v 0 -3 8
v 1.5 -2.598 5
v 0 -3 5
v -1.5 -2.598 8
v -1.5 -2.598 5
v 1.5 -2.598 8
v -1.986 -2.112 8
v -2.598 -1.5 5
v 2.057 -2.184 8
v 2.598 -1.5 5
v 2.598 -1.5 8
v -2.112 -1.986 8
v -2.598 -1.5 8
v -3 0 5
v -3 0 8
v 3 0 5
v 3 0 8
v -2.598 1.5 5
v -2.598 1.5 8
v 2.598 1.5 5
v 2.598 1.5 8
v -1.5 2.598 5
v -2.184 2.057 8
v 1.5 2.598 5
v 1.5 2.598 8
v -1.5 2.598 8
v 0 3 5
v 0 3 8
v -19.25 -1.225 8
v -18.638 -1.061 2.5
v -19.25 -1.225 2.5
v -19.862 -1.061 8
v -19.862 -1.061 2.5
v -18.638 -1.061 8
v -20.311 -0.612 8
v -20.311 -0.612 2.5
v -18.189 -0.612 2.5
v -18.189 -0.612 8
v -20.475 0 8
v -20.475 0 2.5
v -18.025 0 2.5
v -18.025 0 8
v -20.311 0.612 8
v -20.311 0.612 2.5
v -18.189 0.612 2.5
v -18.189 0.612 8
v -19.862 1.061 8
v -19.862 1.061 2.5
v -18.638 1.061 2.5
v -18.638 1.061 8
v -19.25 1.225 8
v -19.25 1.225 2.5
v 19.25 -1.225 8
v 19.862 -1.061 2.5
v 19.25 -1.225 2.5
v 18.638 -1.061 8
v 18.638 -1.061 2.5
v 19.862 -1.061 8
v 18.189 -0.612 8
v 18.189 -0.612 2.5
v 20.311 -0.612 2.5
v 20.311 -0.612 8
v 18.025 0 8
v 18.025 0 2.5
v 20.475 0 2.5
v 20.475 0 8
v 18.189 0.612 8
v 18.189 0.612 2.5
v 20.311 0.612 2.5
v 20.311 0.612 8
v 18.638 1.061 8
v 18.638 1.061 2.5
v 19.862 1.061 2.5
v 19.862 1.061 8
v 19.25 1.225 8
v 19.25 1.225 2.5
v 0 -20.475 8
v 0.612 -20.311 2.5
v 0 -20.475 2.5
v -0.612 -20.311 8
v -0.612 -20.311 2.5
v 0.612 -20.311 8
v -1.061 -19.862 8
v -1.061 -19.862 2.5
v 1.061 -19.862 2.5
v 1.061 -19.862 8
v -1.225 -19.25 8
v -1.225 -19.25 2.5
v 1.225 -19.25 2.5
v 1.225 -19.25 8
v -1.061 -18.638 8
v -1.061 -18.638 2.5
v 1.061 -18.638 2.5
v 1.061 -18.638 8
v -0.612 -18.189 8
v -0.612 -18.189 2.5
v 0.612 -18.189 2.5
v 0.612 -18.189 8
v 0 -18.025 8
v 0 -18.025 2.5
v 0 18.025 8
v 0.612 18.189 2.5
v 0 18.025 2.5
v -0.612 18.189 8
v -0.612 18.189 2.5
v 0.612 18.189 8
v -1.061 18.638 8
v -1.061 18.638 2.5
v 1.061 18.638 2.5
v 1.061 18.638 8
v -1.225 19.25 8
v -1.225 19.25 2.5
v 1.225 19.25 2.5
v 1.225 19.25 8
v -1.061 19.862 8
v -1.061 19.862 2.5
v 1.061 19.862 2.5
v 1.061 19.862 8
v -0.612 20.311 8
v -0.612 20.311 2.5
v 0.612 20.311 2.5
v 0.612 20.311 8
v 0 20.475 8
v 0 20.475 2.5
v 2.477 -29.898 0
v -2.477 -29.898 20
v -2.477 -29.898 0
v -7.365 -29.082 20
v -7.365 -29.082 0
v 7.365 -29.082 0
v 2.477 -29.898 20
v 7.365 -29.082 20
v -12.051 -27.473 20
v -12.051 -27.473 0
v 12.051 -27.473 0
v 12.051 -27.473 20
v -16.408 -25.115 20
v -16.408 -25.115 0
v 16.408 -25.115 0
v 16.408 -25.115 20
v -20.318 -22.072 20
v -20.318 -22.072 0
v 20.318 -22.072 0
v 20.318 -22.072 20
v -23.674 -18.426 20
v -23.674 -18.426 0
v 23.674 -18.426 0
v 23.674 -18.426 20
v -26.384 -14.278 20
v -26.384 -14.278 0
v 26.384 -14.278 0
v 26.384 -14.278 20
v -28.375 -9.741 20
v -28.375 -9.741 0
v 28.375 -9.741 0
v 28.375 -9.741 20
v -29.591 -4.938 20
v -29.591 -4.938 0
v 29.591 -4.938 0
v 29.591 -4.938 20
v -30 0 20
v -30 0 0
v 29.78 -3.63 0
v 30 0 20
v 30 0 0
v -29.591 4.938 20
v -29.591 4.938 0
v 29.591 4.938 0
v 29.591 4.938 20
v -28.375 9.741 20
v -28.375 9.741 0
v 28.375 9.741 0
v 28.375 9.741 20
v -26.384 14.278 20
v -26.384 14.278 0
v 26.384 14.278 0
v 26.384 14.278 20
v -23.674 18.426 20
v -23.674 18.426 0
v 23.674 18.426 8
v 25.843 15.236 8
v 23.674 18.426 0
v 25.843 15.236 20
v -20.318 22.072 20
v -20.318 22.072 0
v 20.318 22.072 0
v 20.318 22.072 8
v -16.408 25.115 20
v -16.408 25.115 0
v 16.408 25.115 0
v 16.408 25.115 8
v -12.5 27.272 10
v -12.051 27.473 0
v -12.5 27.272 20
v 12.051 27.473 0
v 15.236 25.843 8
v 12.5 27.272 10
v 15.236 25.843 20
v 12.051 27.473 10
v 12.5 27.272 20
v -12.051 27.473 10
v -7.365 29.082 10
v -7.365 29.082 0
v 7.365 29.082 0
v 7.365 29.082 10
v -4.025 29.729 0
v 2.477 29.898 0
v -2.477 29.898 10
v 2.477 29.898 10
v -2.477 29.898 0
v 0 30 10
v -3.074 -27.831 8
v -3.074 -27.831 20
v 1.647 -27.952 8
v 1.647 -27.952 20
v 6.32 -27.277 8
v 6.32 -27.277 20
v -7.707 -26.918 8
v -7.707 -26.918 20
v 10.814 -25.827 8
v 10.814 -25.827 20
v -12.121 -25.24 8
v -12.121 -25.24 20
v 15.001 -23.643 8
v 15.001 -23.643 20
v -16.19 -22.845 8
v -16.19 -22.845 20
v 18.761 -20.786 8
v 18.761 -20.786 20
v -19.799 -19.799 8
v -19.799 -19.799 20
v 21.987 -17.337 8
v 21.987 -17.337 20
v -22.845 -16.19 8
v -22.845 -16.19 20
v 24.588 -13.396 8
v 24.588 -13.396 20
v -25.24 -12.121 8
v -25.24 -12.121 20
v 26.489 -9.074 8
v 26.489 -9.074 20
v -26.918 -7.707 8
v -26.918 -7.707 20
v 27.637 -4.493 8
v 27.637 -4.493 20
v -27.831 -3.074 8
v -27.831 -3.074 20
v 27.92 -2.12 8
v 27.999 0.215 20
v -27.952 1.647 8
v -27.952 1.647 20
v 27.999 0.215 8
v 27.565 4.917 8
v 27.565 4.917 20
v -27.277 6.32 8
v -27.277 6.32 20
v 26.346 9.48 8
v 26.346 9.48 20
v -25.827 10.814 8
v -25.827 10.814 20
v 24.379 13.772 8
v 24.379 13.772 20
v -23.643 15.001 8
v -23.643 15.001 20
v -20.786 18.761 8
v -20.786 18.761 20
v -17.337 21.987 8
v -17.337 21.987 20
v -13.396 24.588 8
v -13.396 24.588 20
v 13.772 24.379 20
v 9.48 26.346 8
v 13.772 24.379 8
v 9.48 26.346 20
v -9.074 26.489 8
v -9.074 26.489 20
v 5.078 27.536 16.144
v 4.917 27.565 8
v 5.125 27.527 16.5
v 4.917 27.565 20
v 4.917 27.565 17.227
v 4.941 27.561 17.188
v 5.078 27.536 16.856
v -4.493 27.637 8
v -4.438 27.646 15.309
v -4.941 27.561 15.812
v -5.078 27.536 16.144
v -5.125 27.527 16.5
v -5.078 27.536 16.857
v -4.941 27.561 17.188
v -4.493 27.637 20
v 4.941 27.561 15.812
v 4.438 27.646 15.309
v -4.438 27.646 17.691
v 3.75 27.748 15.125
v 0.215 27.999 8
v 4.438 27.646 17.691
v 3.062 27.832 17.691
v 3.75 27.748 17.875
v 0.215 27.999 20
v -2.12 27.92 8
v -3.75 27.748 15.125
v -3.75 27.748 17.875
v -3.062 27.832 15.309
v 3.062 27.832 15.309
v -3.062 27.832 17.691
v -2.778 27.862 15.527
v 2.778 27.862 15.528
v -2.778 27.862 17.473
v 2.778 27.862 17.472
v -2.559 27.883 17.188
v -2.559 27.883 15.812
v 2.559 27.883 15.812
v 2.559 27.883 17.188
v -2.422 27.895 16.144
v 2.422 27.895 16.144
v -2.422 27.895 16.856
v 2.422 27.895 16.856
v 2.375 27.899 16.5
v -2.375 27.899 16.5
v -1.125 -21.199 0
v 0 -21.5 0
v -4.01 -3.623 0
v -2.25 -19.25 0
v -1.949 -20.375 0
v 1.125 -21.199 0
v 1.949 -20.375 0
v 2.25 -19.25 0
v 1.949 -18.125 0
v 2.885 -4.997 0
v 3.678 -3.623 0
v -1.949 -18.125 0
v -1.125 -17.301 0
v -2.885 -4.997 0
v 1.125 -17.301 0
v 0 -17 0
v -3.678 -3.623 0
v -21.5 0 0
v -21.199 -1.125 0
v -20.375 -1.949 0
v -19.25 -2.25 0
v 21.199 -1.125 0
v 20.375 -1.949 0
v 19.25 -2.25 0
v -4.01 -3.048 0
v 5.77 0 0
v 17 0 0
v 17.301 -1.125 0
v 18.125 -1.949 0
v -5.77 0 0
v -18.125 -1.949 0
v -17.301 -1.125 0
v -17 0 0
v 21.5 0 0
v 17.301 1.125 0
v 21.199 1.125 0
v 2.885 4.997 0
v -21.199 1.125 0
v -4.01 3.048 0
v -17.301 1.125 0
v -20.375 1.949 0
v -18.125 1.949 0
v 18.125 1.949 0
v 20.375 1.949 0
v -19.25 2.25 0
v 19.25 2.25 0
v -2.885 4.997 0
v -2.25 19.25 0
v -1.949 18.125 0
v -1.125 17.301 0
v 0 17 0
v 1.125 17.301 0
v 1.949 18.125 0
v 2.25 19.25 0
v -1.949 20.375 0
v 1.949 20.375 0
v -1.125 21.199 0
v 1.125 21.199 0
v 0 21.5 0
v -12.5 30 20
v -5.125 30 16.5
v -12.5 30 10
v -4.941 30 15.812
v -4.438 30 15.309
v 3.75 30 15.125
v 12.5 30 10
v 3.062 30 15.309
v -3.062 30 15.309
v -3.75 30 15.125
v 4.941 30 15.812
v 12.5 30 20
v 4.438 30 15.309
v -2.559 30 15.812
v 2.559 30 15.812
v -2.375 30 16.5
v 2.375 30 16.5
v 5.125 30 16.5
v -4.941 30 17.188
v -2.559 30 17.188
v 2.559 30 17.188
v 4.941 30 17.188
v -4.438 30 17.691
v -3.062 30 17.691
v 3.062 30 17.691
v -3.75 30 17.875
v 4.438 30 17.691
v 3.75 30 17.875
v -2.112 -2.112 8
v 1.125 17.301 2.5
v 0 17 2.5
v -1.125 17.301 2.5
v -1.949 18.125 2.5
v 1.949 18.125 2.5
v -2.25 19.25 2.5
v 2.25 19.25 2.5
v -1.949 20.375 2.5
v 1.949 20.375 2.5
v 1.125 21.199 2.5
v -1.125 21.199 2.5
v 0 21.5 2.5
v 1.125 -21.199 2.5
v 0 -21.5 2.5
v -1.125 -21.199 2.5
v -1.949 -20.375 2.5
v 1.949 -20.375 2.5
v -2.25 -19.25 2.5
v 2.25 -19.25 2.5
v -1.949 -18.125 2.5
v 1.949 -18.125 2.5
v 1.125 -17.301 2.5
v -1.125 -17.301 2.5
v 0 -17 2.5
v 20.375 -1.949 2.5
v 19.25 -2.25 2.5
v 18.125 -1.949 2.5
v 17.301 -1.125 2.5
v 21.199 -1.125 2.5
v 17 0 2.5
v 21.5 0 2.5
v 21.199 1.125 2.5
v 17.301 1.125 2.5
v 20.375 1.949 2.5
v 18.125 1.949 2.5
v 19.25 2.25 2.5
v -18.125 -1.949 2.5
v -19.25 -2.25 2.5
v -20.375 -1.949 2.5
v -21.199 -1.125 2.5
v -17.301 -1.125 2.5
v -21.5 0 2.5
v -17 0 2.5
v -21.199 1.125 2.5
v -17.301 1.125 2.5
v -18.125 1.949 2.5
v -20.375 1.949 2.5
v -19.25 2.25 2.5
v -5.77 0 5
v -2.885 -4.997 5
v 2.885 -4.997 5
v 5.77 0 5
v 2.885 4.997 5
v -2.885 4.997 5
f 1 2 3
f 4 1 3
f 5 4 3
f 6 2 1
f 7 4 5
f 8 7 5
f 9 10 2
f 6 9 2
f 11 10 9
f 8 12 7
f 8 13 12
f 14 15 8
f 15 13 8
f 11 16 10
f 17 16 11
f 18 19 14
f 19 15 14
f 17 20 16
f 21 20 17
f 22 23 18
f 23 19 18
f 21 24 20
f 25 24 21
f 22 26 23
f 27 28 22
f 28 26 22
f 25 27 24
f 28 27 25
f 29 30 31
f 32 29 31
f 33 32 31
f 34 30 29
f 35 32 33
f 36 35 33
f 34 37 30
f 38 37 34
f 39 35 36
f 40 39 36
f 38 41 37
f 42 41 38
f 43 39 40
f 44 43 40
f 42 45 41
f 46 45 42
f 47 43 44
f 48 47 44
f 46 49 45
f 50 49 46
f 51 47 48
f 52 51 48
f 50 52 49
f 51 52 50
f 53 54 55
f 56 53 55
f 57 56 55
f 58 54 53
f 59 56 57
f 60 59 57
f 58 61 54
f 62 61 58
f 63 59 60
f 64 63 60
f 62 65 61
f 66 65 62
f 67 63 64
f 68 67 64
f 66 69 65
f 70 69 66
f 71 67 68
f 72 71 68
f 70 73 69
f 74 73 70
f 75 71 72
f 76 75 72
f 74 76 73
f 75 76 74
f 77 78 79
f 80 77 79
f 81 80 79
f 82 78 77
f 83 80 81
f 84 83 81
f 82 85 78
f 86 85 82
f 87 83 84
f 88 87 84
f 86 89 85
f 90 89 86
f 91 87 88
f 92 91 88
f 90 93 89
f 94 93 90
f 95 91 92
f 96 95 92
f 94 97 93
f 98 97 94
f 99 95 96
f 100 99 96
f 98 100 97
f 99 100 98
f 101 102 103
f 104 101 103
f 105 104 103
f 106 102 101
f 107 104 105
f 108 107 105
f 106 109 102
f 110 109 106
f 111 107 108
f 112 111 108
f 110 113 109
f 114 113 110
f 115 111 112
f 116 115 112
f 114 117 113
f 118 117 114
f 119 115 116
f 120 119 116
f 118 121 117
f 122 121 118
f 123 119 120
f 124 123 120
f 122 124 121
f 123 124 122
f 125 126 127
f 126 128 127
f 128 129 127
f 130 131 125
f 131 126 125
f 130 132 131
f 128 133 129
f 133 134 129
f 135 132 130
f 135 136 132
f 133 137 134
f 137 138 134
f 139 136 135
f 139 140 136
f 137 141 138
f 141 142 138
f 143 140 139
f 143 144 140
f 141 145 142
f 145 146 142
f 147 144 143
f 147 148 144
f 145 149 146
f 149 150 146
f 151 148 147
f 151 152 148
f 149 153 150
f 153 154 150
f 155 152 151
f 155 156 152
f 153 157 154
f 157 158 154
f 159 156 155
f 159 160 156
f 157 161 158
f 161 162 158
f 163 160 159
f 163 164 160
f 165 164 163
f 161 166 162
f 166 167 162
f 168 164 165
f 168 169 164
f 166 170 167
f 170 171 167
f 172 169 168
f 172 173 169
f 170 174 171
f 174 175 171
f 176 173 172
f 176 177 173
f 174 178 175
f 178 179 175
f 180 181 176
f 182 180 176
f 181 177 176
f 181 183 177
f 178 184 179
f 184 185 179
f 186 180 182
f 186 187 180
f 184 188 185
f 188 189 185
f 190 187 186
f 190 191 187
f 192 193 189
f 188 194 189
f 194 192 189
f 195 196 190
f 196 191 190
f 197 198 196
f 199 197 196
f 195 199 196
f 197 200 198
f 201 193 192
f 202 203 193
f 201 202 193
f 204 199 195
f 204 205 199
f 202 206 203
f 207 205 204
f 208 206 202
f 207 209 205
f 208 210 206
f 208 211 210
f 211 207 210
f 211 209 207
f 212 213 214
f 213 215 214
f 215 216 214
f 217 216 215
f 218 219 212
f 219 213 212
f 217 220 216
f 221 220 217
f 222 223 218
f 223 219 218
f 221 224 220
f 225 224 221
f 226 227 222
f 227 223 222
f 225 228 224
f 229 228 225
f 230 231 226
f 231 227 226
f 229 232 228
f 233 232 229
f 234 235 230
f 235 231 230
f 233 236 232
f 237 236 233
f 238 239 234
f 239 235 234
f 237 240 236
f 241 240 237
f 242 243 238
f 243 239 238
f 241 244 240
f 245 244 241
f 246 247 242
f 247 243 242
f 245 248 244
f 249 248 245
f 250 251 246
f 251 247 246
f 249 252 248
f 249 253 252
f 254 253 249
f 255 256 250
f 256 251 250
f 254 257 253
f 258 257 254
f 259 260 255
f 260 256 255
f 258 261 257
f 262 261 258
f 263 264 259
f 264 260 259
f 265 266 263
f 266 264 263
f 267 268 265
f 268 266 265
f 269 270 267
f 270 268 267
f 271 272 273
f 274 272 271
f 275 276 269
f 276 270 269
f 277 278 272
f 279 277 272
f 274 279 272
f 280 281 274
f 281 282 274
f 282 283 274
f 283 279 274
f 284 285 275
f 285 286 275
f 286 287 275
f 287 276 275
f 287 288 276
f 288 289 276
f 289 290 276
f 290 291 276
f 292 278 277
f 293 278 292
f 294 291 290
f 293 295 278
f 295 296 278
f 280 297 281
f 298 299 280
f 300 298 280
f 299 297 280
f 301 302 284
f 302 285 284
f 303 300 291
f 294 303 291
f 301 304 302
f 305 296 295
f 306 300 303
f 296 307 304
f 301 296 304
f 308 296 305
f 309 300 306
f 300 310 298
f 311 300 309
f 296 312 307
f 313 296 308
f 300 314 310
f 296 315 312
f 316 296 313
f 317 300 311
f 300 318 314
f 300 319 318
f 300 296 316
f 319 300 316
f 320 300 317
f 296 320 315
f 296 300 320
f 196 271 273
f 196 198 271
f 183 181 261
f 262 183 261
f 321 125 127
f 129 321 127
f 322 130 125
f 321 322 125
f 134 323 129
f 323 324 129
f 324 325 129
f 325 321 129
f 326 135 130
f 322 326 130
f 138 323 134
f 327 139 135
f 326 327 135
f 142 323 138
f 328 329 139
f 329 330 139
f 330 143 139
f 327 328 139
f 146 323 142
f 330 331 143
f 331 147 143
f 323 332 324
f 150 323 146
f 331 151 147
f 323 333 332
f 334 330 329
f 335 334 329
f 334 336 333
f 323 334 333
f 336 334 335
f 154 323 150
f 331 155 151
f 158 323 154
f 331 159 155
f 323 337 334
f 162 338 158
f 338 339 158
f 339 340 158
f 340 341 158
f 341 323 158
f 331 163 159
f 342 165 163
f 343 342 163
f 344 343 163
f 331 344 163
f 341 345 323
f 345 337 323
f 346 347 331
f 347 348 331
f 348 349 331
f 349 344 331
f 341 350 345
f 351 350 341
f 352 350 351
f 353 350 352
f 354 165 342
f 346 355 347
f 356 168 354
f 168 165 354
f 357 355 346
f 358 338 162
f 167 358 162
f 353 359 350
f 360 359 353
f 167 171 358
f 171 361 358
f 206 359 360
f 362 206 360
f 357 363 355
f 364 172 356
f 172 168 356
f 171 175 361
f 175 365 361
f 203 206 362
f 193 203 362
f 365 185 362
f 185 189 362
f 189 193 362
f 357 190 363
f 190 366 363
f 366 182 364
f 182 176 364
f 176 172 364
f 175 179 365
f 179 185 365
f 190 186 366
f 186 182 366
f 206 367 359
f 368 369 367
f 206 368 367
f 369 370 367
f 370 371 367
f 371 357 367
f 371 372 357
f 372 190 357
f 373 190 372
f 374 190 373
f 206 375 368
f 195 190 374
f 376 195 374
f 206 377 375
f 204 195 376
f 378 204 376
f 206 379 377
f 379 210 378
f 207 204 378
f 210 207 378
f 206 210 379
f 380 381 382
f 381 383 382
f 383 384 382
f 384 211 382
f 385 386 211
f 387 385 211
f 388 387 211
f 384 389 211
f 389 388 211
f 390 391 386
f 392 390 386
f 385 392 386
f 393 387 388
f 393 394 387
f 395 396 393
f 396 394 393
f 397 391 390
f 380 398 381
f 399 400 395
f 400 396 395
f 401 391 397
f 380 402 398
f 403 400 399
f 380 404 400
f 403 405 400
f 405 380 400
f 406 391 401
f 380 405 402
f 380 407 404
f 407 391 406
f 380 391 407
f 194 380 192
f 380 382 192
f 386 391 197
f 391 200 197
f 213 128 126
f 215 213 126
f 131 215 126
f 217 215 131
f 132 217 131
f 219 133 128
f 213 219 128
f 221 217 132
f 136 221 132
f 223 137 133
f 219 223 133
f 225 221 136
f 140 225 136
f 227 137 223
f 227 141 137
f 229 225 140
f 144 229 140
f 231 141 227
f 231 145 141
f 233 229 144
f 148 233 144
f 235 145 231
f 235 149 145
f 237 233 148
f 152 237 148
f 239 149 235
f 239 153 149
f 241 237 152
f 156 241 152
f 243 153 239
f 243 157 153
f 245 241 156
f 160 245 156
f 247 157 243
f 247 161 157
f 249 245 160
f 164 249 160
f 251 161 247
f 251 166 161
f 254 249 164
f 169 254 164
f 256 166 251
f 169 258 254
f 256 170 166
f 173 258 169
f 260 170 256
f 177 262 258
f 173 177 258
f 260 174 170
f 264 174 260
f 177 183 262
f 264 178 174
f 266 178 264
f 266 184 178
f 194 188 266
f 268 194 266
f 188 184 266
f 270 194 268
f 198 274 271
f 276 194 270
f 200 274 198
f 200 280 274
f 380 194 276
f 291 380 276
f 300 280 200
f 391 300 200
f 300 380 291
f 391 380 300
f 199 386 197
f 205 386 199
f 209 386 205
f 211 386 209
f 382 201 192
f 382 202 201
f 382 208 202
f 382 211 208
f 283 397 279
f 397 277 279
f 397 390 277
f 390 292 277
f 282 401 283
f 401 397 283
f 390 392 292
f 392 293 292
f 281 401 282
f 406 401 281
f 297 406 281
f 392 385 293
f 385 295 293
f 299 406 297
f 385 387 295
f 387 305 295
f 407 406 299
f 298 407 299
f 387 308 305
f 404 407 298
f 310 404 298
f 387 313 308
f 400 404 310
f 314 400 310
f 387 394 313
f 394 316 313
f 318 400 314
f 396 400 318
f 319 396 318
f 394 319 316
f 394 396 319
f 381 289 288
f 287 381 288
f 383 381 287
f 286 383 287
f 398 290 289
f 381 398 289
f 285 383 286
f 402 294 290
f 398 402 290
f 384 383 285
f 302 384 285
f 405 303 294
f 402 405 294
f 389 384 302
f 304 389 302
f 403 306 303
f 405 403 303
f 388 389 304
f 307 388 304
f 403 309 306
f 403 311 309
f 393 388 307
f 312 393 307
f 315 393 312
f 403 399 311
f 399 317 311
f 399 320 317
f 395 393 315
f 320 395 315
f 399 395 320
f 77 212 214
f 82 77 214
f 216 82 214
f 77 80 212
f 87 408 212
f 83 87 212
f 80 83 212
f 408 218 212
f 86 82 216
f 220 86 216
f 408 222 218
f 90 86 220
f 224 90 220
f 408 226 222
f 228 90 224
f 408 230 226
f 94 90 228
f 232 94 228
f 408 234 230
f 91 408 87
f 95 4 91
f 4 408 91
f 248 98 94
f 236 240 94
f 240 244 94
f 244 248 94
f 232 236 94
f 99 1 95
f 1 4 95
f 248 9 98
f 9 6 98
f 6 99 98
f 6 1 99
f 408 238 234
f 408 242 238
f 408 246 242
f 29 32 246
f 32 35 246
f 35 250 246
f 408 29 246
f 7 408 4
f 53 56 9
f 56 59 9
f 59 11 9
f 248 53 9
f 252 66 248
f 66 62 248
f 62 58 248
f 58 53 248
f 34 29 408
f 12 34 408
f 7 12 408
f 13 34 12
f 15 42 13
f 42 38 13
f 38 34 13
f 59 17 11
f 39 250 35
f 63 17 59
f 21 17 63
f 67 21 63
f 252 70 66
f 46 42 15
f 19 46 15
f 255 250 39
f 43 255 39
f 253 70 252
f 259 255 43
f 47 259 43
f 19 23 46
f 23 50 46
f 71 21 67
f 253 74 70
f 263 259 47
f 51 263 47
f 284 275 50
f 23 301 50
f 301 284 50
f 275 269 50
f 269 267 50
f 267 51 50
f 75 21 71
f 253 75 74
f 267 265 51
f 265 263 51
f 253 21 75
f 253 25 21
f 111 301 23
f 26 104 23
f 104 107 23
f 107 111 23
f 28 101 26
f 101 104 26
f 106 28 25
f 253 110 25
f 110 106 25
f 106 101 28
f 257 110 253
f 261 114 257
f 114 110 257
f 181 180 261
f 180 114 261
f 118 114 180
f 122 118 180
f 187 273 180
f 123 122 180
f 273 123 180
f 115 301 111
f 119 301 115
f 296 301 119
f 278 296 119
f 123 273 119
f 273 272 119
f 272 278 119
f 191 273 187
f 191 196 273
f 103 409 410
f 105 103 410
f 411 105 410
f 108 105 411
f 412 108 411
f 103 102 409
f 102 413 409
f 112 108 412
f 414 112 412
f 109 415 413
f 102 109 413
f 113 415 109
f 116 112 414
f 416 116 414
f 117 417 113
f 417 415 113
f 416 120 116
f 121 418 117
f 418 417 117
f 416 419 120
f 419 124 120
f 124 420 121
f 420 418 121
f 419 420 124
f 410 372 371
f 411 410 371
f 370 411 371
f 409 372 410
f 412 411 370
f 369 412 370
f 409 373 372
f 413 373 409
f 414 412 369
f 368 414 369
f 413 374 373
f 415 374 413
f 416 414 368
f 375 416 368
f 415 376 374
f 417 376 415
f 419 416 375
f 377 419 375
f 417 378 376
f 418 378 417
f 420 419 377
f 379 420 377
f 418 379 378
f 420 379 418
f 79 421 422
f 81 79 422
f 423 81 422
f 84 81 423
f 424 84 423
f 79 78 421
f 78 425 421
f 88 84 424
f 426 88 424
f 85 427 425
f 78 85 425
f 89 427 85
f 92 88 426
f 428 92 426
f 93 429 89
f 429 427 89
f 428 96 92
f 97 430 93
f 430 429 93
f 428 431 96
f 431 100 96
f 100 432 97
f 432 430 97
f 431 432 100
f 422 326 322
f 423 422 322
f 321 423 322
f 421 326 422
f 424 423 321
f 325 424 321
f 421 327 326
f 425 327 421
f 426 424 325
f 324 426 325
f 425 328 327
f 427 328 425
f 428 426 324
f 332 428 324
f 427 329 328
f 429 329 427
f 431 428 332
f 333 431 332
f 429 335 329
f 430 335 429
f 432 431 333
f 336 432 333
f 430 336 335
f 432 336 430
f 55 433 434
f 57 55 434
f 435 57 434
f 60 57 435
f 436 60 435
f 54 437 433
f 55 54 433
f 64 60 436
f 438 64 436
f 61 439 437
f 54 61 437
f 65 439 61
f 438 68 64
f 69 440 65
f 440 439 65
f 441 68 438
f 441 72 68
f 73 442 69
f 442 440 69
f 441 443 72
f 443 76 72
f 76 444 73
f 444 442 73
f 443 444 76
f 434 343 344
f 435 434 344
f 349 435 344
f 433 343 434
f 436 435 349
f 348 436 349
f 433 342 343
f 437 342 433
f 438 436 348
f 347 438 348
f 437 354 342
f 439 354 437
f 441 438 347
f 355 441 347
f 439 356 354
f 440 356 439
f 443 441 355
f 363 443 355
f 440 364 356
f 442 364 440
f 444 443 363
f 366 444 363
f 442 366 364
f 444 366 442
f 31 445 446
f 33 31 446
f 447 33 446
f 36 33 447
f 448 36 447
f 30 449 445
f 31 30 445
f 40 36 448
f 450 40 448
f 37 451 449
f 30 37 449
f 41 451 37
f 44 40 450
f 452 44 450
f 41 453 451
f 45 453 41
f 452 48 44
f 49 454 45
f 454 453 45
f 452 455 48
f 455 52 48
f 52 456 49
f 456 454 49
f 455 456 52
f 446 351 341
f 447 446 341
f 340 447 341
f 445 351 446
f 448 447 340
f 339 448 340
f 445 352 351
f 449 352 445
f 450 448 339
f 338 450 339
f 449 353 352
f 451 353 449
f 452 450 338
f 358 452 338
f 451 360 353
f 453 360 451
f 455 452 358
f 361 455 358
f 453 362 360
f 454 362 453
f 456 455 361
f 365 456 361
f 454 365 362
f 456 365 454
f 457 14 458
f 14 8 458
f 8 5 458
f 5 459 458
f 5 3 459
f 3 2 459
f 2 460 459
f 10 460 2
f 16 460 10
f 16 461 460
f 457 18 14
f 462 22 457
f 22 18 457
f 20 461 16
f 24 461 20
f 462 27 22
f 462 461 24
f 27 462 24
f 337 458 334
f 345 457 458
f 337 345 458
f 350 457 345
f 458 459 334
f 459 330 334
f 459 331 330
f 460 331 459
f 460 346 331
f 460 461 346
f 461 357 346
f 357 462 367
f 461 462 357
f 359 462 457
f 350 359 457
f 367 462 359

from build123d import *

# Parameters (mm, degrees)
SKETCH_1_R               = 30
EXTRUDE_1_DEPTH          = 25
EXTRUDE_2_DEPTH          = 10
EXTRUDE_3_DEPTH          = 10
CUT_EXTRUDE_1_DEPTH      = 10
SKETCH_5_R               = 1.375
CUT_EXTRUDE_2_DEPTH      = 3
SKETCH_7_R               = 28
CUT_EXTRUDE_4_DEPTH      = 17
SKETCH_8_R               = 1.225
CUT_EXTRUDE_5_DEPTH      = 22
SKETCH_10_R              = 3
CUT_EXTRUDE_6_DEPTH      = 50.244289121
CUT_EXTRUDE_START        = -17
CUT_EXTRUDE_8_DEPTH      = 17
CUT_EXTRUDE_START_2      = -5
SKETCH_14_R              = 30
CUT_EXTRUDE_9_DEPTH      = 5
SKETCH_11_R              = 2.25
CUT_EXTRUDE_10_DEPTH     = 2.5
PATTERN_CIRCULAR_1_COUNT = 4
CUT_EXTRUDE_11_DEPTH     = 5


with BuildPart() as part:
    # 草图1 → 凸台-拉伸1 (new body)
    with BuildSketch(Plane.XY):
        Circle(SKETCH_1_R)
    extrude(amount=EXTRUDE_1_DEPTH)

    # 草图2 → 凸台-拉伸2 (add)
    with BuildSketch(Plane(origin=(0, 0, 0), x_dir=(-1, 0, 0), z_dir=(0, 0, -1))):
        with BuildLine():
            Line((0, 30), (-12.5, 30))
            Line((-12.5, 30), (-12.5, 27.271780287))
            ThreePointArc((-12.5, 27.271780287), (-6.397131834, 29.310010309), (0, 30))
        make_face()
        with BuildLine():
            Line((12.5, 30), (0, 30))
            ThreePointArc((0, 30), (6.397131834, 29.310010309), (12.5, 27.271780287))
            Line((12.5, 27.271780287), (12.5, 30))
        make_face()
    extrude(amount=-EXTRUDE_2_DEPTH)

    # 草图3 → 凸台-拉伸3 (add)
    with BuildSketch(Plane.XY.offset(10)):
        with BuildLine():
            Line((-12.5, 30), (-12.5, 27.271780287))
            ThreePointArc((-12.5, 27.271780287), (-6.397131834, 29.310010309), (0, 30))
            Line((0, 30), (-12.5, 30))
        make_face()
        with BuildLine():
            ThreePointArc((0, 30), (6.397131834, 29.310010309), (12.5, 27.271780287))
            Line((12.5, 27.271780287), (12.5, 30))
            Line((12.5, 30), (0, 30))
        make_face()
    extrude(amount=EXTRUDE_3_DEPTH)

    # 草图4 → 切除-拉伸1 (cut)
    with BuildSketch(Plane(origin=(0, 0, 0), x_dir=(-1, 0, 0), z_dir=(0, 0, -1))):
        with BuildLine():
            Line((-12.5, 30), (-12.5, 27.271780287))
            ThreePointArc((-12.5, 27.271780287), (-6.397131834, 29.310010309), (0, 30))
            Line((0, 30), (-12.5, 30))
        make_face()
        with BuildLine():
            ThreePointArc((0, 30), (6.397131834, 29.310010309), (12.5, 27.271780287))
            Line((12.5, 27.271780287), (12.5, 30))
            Line((12.5, 30), (0, 30))
        make_face()
    extrude(amount=-CUT_EXTRUDE_1_DEPTH, mode=Mode.SUBTRACT)

    # 草图5 → 切除-拉伸2 (cut)
    with BuildSketch(Plane(origin=(0, 30, 0), x_dir=(1, 0, 0), z_dir=(0, 1, 0))):
        with Locations((-3.75, -16.5)):
            Circle(SKETCH_5_R)
        with Locations((3.75, -16.5)):
            Circle(SKETCH_5_R)
    extrude(amount=-CUT_EXTRUDE_2_DEPTH, mode=Mode.SUBTRACT)

    # 草图7 → 切除-拉伸4 (cut)
    with BuildSketch(Plane.XY.offset(25)):
        Circle(SKETCH_7_R)
    extrude(amount=-CUT_EXTRUDE_4_DEPTH, mode=Mode.SUBTRACT)

    # 草图8 → 切除-拉伸5 (cut)
    with BuildSketch(Plane(origin=(0, 0, 0), x_dir=(-1, 0, 0), z_dir=(0, 0, -1))):
        with Locations((0, 19.25)):
            Circle(SKETCH_8_R)
        with Locations((19.25, 0)):
            Circle(SKETCH_8_R)
        with Locations((0, -19.25)):
            Circle(SKETCH_8_R)
        with Locations((-19.25, 0)):
            Circle(SKETCH_8_R)
    extrude(amount=-CUT_EXTRUDE_5_DEPTH, mode=Mode.SUBTRACT)

    # 草图10 → 切除-拉伸6 (cut, through all)
    with BuildSketch(Plane(origin=(0, 0, 0), x_dir=(-1, 0, 0), z_dir=(0, 0, -1))):
        Circle(SKETCH_10_R)
    extrude(amount=-CUT_EXTRUDE_6_DEPTH, mode=Mode.SUBTRACT)

    # 草图13 → 切除-拉伸8 (cut)
    with BuildSketch(Plane.XY.offset(25).offset(CUT_EXTRUDE_START)):
        with BuildLine():
            Line((14.928300859, 4.321699141), (25.842896765, 15.236295048))
            ThreePointArc((25.842896765, 15.236295048), (21.213203436, 21.213203436), (15.236295048, 25.842896765))
            Line((15.236295048, 25.842896765), (4.321699141, 14.928300859))
            Line((4.321699141, 14.928300859), (14.928300859, 4.321699141))
        make_face()
    extrude(amount=CUT_EXTRUDE_8_DEPTH, mode=Mode.SUBTRACT)

    # 草图14 → 切除-拉伸9 (cut)
    with BuildSketch(Plane.XY.offset(25).offset(CUT_EXTRUDE_START_2)):
        Circle(SKETCH_14_R)
    extrude(amount=CUT_EXTRUDE_9_DEPTH, mode=Mode.SUBTRACT)

    # 草图11 → 切除-拉伸10 (cut)
    with BuildSketch(Plane(origin=(0, 0, 0), x_dir=(-1, 0, 0), z_dir=(0, 0, -1))):
        with Locations((0, 19.25)):
            Circle(SKETCH_11_R)
    cut_extrude_10 = extrude(amount=-CUT_EXTRUDE_10_DEPTH, mode=Mode.SUBTRACT)

    # 阵列(圆周)1: 切除-拉伸10 ×4 about axis
    pattern_circular_1_axis = Axis((0, 0, 0), (0, 0, -1))
    for i in range(1, PATTERN_CIRCULAR_1_COUNT):
        add(cut_extrude_10.rotate(pattern_circular_1_axis, i * 360 / PATTERN_CIRCULAR_1_COUNT), mode=Mode.SUBTRACT)

    # 草图17 → 切除-拉伸11 (cut)
    with BuildSketch(Plane(origin=(0, 0, 0), x_dir=(-1, 0, 0), z_dir=(0, 0, -1))):
        Polygon((5.77, 0), (2.885, 4.99696658), (-2.885, 4.99696658), (-5.77, 0), (-2.885, -4.99696658), (2.885, -4.99696658), align=None)
    extrude(amount=-CUT_EXTRUDE_11_DEPTH, mode=Mode.SUBTRACT)


solid = part.part
